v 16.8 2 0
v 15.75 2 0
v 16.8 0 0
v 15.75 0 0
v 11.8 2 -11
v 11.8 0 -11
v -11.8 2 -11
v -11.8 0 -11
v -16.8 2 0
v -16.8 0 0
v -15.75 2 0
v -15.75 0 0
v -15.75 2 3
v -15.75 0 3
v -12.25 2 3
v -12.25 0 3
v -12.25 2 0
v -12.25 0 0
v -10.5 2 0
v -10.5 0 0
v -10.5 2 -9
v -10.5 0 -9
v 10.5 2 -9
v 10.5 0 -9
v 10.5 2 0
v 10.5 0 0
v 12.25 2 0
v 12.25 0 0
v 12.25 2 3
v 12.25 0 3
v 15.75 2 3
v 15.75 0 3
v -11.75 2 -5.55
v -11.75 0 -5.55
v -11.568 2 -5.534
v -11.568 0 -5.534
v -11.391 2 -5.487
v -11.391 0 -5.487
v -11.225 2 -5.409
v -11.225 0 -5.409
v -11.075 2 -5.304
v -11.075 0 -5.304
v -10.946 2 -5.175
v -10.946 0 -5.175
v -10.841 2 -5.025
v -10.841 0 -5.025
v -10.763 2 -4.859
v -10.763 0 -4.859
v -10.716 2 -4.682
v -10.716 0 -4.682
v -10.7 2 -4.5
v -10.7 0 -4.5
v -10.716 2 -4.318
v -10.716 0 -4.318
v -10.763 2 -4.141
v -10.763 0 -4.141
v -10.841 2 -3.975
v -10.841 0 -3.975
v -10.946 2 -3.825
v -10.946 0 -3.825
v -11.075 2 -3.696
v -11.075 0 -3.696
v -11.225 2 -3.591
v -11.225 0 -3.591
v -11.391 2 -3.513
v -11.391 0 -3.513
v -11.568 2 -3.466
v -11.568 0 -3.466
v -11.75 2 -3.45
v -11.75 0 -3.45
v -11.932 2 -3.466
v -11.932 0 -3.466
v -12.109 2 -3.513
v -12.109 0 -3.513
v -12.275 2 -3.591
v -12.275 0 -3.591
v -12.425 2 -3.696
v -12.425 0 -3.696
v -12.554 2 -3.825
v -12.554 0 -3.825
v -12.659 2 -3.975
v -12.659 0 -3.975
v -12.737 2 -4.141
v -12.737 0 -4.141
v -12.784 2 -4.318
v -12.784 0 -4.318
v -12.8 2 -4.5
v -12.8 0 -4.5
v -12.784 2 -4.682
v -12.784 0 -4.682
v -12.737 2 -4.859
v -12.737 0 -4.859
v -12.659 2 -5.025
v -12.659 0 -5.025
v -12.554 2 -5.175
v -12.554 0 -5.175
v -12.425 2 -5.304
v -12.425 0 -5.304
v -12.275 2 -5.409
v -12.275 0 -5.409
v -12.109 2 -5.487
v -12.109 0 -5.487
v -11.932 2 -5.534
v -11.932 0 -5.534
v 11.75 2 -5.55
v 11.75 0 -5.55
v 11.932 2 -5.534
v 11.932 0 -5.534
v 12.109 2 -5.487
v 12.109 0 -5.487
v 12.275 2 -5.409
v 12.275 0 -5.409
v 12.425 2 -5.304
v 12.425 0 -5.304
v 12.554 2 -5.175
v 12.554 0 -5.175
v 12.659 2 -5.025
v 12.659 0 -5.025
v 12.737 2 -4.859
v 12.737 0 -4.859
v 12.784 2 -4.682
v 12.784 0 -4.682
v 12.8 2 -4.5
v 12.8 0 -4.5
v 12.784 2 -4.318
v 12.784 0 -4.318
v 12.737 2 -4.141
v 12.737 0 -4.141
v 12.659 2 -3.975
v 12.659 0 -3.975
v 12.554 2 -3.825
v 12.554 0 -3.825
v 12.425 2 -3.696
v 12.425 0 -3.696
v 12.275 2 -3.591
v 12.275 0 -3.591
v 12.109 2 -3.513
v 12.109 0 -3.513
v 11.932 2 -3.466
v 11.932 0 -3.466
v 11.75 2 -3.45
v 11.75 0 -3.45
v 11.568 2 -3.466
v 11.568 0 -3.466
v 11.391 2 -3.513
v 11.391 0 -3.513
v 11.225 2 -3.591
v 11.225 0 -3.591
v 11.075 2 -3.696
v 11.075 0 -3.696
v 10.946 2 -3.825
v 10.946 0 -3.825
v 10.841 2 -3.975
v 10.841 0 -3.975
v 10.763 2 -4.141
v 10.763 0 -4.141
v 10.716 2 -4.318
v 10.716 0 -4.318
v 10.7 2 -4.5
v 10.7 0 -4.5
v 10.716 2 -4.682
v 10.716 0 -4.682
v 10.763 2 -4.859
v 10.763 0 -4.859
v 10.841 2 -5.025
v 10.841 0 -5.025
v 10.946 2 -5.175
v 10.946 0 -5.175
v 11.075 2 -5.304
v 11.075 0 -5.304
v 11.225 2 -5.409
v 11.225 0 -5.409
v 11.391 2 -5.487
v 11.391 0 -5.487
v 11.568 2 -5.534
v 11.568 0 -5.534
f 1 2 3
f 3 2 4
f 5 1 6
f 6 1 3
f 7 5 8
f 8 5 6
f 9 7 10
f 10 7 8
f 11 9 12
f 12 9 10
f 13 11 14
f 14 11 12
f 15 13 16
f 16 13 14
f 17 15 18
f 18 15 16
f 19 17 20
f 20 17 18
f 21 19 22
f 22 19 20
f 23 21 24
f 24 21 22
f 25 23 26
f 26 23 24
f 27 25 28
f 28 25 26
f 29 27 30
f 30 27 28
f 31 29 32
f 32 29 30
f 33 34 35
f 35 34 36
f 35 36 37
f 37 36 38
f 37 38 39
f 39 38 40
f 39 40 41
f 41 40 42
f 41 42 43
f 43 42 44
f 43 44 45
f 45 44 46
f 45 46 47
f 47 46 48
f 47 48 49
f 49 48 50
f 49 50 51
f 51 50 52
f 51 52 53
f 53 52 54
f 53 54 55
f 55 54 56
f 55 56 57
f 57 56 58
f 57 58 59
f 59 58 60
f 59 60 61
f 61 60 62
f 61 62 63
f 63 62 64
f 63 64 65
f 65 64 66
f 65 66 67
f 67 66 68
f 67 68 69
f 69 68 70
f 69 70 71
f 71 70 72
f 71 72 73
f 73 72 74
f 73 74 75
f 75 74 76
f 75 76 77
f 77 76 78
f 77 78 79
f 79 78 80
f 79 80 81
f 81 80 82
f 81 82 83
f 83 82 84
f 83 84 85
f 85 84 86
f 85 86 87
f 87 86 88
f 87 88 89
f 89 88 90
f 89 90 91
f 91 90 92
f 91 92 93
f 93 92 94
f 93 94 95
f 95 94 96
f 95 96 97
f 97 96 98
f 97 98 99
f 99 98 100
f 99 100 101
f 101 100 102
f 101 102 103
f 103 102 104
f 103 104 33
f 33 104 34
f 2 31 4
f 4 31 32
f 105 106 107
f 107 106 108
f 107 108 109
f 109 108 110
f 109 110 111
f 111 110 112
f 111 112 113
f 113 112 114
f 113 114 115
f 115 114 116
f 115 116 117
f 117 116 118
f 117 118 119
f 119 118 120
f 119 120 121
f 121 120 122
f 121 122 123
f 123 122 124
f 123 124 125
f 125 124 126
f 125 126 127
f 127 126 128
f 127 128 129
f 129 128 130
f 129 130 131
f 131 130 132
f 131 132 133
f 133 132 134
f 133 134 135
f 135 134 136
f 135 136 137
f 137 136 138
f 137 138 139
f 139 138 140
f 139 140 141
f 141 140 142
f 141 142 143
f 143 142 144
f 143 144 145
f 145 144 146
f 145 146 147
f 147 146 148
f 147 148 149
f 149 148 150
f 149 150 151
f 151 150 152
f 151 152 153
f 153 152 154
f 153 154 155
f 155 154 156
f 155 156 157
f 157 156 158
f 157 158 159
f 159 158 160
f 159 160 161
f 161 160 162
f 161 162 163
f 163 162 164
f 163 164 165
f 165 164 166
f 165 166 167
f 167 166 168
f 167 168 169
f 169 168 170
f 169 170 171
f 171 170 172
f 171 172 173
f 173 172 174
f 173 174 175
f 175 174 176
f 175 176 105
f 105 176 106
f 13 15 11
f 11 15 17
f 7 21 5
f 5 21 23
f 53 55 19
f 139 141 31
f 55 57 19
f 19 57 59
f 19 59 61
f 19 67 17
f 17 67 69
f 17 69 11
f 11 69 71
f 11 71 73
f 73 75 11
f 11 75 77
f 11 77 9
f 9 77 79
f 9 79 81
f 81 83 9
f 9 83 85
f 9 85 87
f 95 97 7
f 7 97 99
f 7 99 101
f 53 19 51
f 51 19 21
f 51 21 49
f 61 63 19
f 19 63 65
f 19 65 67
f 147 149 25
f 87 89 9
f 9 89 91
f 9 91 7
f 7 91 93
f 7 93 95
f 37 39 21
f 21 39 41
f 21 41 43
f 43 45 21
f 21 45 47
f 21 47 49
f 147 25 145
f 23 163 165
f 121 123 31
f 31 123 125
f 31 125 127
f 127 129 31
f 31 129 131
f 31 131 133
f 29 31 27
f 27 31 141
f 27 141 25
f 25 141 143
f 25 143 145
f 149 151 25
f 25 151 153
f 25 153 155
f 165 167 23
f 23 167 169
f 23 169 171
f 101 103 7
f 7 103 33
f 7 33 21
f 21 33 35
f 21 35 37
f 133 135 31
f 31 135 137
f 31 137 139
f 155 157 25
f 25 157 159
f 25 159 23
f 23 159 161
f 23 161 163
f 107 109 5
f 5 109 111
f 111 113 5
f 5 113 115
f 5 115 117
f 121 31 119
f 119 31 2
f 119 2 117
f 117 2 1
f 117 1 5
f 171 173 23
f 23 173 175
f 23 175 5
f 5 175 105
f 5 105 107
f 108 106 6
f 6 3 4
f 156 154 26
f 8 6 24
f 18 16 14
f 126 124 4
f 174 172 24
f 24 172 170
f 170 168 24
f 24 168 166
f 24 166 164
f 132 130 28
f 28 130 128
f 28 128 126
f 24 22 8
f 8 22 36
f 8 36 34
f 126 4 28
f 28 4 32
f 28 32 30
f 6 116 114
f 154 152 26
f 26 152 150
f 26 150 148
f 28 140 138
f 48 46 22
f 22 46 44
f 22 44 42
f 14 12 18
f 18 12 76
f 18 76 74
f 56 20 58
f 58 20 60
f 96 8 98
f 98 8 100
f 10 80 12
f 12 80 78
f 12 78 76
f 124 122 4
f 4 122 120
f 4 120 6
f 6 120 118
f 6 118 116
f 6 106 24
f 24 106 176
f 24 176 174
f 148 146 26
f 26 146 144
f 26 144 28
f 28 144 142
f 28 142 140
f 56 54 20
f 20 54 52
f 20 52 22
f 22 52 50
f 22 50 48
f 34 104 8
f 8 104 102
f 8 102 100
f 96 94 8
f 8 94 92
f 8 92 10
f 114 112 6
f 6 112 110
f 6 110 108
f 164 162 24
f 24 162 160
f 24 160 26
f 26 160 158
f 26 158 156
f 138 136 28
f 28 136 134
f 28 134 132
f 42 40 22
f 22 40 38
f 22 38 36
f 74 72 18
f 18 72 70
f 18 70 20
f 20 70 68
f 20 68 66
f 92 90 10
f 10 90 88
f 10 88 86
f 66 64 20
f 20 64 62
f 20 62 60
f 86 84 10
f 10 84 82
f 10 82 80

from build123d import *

# Parameters (mm, degrees)
CROQUIS1_R              = 1.05
SALIENTE_EXTRUIR1_DEPTH = 2


with BuildPart() as part:
    # Croquis1 → Saliente-Extruir1 (new body)
    with BuildSketch(Plane(origin=(0, 0, 0), x_dir=(1, 0, 0), z_dir=(0, 1, 0))):
        Polygon((-10.5, 0), (-10.5, 9), (10.5, 9), (10.5, 0), (12.25, 0), (12.25, -3), (15.75, -3), (15.75, 0), (16.8, 0), (11.8, 11), (-11.8, 11), (-16.8, 0), (-15.75, 0), (-15.75, -3), (-12.25, -3), (-12.25, 0), align=None)
        with Locations(Location((-11.75, 4.5, 0), (0, 0, 270))):
            Circle(CROQUIS1_R, mode=Mode.SUBTRACT)
        with Locations(Location((11.75, 4.5, 0), (0, 0, 270))):
            Circle(CROQUIS1_R, mode=Mode.SUBTRACT)
    extrude(amount=SALIENTE_EXTRUIR1_DEPTH)


solid = part.part
